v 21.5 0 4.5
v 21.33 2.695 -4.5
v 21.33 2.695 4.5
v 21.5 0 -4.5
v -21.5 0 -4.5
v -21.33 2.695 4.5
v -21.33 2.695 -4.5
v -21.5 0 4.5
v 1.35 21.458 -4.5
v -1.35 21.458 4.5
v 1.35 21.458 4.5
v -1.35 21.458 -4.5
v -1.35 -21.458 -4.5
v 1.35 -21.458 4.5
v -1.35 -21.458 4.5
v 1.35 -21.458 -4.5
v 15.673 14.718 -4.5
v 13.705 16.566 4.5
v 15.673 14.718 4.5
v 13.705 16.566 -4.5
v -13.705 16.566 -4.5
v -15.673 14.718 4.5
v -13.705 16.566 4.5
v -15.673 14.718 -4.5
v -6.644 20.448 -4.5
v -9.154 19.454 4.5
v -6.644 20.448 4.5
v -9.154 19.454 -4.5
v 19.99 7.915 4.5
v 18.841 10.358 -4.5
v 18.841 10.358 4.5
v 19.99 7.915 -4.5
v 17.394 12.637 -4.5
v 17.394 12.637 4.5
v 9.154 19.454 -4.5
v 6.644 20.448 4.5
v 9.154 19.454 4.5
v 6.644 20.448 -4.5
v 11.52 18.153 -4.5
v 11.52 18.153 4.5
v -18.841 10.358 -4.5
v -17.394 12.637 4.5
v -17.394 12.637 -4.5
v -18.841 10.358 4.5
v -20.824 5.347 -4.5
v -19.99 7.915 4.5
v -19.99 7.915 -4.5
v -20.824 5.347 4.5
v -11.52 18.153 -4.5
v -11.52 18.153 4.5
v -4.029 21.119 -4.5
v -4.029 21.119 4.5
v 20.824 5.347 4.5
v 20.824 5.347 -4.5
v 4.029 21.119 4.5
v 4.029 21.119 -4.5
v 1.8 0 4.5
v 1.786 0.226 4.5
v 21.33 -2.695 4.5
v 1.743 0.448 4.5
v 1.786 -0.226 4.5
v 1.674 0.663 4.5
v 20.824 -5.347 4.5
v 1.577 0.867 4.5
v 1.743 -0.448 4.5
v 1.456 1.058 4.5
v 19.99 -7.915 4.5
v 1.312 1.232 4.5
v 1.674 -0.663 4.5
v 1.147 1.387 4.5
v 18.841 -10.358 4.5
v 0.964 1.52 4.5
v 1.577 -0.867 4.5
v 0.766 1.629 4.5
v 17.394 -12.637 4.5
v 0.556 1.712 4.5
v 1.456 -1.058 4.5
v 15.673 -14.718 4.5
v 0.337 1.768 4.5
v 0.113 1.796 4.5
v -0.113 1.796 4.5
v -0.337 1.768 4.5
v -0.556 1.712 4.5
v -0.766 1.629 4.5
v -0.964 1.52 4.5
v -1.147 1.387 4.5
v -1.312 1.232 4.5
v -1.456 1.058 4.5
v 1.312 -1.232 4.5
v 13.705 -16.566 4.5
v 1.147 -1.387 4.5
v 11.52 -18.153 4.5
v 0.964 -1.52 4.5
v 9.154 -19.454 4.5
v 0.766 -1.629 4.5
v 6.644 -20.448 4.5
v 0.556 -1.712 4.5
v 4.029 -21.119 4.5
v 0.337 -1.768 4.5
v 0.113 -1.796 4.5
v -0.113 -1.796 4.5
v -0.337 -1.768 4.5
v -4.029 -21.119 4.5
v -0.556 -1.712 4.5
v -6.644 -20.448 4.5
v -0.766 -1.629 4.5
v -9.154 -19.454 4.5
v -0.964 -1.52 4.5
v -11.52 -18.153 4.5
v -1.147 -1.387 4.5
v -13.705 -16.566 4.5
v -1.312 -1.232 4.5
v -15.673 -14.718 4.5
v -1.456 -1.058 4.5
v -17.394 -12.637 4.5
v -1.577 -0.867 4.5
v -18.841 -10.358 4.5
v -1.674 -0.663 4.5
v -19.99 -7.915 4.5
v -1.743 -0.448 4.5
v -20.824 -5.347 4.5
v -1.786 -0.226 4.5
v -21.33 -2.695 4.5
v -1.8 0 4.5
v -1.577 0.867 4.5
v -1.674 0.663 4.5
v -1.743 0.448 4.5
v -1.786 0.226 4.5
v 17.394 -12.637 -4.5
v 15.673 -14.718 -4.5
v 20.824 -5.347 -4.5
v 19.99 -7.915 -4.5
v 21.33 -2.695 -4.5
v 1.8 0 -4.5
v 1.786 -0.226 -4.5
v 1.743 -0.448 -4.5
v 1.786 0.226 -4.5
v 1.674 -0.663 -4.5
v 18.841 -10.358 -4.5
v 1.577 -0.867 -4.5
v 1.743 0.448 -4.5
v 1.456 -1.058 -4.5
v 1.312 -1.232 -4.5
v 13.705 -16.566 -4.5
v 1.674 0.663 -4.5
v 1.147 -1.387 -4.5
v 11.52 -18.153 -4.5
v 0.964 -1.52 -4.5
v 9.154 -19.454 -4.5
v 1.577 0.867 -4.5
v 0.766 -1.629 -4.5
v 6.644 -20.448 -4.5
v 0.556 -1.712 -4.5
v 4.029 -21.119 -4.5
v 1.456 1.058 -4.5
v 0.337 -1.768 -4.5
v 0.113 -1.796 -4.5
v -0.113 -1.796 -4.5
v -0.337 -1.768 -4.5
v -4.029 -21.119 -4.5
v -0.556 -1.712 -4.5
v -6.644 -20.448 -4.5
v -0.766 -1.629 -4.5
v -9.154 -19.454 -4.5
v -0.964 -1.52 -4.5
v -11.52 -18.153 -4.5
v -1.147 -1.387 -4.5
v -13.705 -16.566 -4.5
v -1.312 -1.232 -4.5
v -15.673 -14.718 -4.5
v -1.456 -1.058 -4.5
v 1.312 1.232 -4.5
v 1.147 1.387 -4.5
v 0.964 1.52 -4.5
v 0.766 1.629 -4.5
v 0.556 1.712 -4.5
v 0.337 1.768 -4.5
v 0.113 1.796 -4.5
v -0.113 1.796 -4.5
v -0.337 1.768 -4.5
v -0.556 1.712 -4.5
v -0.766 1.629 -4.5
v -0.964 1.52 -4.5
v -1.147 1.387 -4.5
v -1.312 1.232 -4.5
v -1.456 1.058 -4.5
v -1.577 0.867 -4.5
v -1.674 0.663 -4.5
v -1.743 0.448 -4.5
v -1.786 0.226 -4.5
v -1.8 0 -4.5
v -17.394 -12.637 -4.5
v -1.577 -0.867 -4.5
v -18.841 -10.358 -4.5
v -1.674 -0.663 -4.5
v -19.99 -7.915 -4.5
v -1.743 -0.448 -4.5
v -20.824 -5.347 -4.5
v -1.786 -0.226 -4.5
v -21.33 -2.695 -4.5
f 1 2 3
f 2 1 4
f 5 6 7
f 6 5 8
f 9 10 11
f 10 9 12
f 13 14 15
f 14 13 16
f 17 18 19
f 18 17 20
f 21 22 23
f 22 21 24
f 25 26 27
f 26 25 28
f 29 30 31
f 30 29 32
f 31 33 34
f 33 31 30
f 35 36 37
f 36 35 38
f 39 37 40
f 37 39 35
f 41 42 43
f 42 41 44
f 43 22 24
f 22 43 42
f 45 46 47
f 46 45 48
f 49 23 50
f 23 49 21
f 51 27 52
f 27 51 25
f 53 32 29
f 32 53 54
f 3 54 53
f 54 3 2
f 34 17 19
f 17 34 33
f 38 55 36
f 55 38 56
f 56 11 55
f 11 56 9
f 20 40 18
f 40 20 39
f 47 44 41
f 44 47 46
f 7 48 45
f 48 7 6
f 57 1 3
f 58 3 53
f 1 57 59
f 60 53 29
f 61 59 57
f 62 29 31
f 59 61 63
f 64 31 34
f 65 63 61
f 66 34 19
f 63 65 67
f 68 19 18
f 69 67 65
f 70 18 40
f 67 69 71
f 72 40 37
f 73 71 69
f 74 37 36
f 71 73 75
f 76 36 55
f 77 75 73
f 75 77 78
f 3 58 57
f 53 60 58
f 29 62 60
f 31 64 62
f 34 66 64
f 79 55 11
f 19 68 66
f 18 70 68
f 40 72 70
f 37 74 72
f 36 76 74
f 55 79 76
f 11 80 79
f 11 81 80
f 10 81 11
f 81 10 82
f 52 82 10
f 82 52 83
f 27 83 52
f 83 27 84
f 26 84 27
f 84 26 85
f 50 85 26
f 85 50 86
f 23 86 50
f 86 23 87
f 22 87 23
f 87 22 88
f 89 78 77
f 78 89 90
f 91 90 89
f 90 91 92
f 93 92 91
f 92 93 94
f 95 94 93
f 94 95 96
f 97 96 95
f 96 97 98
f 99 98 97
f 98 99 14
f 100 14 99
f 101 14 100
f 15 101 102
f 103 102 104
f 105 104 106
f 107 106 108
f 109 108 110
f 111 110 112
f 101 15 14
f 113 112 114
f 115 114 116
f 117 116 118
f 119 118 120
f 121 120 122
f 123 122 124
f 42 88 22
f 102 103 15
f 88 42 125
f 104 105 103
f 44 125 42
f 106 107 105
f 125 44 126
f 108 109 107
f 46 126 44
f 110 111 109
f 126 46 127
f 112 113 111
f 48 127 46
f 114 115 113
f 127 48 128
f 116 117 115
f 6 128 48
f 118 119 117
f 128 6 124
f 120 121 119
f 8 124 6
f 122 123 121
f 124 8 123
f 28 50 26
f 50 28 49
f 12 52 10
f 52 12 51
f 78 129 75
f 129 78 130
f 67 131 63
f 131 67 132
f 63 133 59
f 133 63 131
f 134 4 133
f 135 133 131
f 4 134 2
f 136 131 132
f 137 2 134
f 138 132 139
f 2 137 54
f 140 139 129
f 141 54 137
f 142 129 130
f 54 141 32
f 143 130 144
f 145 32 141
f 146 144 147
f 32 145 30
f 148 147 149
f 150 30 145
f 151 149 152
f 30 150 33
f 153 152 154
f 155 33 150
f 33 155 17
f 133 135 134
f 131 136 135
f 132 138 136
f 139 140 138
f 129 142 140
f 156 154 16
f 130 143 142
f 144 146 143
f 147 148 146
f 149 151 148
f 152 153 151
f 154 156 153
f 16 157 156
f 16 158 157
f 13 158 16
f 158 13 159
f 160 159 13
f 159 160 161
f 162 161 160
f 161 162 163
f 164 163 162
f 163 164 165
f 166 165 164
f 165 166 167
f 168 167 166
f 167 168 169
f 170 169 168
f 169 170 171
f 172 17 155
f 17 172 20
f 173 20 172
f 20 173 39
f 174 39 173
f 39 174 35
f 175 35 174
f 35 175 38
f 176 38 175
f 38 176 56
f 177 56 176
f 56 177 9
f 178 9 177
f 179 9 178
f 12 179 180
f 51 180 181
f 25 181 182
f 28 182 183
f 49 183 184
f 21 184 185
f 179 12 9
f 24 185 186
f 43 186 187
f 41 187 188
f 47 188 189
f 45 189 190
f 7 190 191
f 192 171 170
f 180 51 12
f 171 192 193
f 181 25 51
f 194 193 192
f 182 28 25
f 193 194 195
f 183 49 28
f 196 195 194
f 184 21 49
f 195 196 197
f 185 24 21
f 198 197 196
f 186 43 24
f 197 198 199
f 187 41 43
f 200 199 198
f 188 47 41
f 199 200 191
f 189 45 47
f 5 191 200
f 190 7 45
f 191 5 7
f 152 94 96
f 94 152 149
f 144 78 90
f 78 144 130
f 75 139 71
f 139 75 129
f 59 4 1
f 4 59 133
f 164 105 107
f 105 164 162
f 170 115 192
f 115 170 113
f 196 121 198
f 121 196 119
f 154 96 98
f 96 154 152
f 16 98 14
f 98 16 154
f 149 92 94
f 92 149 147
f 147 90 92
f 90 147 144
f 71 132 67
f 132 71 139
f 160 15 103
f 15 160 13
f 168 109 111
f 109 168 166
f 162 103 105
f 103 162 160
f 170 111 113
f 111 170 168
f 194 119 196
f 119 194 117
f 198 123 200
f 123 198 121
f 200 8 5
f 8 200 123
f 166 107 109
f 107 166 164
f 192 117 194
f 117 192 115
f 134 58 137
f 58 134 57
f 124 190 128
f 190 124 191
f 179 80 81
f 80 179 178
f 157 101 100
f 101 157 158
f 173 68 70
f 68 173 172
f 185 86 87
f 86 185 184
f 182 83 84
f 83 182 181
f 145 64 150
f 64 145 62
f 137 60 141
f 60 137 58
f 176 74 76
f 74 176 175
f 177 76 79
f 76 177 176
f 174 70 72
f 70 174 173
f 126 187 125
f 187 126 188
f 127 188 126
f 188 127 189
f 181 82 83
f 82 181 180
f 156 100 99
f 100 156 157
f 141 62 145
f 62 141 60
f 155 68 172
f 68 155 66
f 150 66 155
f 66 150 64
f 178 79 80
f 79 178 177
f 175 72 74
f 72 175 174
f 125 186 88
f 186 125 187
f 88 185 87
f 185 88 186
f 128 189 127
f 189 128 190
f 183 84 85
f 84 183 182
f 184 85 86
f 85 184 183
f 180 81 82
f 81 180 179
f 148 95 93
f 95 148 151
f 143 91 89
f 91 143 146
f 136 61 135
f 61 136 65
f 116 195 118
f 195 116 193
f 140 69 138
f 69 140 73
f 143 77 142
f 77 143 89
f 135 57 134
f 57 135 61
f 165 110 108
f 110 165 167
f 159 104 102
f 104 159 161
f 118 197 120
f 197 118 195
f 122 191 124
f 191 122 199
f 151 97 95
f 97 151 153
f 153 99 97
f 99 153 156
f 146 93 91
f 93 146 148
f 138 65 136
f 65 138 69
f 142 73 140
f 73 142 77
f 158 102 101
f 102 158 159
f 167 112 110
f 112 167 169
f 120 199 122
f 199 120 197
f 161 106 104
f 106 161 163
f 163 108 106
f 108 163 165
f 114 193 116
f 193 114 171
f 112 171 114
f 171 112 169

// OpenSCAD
$fn = 50;


difference() {
	union() {
		translate(v = [0, 0, -4.5000000000]) {
			cylinder(h = 9, r = 21.5000000000);
		}
	}
	union() {
		translate(v = [0, 0, -100.0000000000]) {
			cylinder(h = 200, r = 1.8000000000);
		}
	}
}
